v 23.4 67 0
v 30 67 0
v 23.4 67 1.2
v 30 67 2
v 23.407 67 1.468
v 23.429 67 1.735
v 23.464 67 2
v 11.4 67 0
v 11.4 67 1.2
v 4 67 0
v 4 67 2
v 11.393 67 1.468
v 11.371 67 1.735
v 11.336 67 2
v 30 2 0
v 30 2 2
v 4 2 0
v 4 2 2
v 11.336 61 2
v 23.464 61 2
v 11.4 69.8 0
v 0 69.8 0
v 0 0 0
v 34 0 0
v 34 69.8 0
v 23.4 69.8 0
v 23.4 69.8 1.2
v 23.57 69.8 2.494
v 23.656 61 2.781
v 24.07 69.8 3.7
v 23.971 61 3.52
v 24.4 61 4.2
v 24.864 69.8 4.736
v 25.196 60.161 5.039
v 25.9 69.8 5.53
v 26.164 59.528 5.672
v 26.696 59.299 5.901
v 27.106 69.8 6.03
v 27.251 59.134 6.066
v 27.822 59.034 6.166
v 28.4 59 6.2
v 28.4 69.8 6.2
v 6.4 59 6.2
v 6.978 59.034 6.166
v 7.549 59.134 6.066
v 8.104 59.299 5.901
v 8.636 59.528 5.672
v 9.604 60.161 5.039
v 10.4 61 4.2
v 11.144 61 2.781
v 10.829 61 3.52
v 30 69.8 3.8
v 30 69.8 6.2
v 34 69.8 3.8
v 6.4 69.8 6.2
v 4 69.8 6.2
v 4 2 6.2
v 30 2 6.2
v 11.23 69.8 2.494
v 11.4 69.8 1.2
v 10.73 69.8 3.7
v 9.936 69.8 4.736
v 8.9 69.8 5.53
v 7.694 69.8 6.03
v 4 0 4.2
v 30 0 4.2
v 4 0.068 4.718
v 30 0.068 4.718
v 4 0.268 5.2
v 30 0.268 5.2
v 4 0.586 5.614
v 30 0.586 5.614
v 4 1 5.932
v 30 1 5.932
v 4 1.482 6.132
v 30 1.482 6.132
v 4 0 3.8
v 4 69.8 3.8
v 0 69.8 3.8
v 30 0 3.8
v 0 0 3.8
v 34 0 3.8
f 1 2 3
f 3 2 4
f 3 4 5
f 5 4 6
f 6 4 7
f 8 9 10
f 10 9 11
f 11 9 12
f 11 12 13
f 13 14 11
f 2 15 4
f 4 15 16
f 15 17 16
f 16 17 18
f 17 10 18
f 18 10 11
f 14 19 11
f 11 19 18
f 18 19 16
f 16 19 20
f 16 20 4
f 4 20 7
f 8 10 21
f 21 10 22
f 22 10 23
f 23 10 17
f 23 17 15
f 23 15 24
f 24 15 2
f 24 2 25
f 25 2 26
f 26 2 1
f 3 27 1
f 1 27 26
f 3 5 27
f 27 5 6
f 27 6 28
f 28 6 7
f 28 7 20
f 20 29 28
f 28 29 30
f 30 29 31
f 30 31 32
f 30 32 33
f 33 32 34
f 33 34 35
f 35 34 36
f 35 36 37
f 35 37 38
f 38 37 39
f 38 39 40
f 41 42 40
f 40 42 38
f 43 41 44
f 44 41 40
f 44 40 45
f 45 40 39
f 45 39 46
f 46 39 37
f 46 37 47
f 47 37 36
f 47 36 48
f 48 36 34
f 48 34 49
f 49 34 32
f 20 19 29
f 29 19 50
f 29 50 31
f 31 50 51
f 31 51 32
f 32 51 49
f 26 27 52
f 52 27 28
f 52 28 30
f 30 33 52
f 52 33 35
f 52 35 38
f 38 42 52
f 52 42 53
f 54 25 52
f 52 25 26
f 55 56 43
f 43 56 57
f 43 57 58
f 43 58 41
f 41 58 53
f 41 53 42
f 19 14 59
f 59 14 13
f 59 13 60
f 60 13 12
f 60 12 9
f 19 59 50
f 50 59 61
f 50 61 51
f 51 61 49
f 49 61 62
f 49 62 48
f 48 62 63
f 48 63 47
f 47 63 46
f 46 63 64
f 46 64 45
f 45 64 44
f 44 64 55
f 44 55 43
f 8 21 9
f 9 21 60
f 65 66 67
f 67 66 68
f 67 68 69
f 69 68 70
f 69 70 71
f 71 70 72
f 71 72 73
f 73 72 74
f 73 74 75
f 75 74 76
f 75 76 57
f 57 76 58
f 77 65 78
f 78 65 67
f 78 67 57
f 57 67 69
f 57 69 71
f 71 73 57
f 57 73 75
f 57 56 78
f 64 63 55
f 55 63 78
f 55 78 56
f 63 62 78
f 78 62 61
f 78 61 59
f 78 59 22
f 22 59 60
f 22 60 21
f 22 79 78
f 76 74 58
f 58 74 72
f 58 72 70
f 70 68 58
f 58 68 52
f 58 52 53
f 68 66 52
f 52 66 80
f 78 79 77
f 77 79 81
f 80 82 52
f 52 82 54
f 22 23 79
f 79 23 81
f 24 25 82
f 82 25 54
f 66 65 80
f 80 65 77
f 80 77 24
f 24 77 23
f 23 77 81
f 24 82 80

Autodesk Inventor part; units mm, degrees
ref_plane "YZ Plane" through (0, 0, 0) normal (1, 0, 0) x (0, 1, 0)
ref_plane "XZ Plane" through (0, 0, 0) normal (0, 1, 0) x (-1, 0, 0)
ref_plane "XY Plane" through (0, 0, 0) normal (0, 0, 1) x (1, 0, 0)
sketch "Sketch1" plane through (0, 0, 0) normal (0, 0, 1) x (1, 0, 0)
  line L0 (0, 0) -> (34, 0)
  line L1 (34, 0) -> (34, 69.8)
  line L2 (34, 69.8) -> (0, 69.8)
  line L3 (0, 69.8) -> (0, 0)
  line L4 (34, 69.8) -> (0, 69.8)
  line L5 (0, 69.8) -> (0, 0)
  line L6 (0, 0) -> (34, 0)
  line L7 (34, 0) -> (34, 69.8)
  dimension "d4" = 34
  dimension "d5" = 69.8
extrude "Extrusion1" add sketch "Sketch1" along normal blind 3.8
sketch "Sketch3" plane through (0, 0, 3.8) normal (0, 0, 1) x (1, 0, 0)
  line L0 (34, 69.8) -> (0, 69.8) projected
  line L1 (0, 0) -> (34, 0) projected
  line L2 (30, 69.8) -> (4, 69.8)
  line L3 (4, 69.8) -> (4, 0)
  line L4 (4, 0) -> (30, 0)
  line L5 (30, 0) -> (30, 69.8)
  line L6 (0, 69.8) -> (0, 0) projected
  line L7 (34, 0) -> (34, 69.8) projected
  dimension "d6" = 26
  dimension "d7" = 4
  dimension "d8" = 4
extrude "Extrusion3" add sketch "Sketch3" along normal blind 2.4 contours L5 L1 L3 L0
sketch "Sketch4" plane through (0, 0, 6.2) normal (0, 0, 1) x (1, 0, 0)
  point P0 (0, 0)
sketch "Sketch5" plane through (0, 0, 6.2) normal (0, 0, 1) x (1, 0, 0)
  line L0 (30, 69.8) -> (4, 69.8) projected
  line L1 (23.4, 69.8) -> (11.4, 69.8)
  line L2 (11.4, 69.8) -> (11.4, 61)
  line L3 (11.4, 61) -> (23.4, 61)
  line L4 (23.4, 61) -> (23.4, 69.8)
  point P0 (0, 0)
  dimension "d11" = 12
extrude "Extrusion4" cut sketch "Sketch5" against normal blind 8
fillet "Fillet1" radius 2 1 edges at (17, 0, 6.2)
fillet "Fillet2" radius 5 2 edges at (11.4, 65.4, 6.2) (23.4, 65.4, 6.2)
chamfer "Chamfer1" distance 2 angle 45 1 edges at (17.4, 61, 6.2)
sketch "Sketch6" plane through (0, 0, 0) normal (0, 0, -1) x (-1, 0, 0)
  line L0 (-30, 2) -> (-4, 2) projected
  line L1 (-30, 2) -> (-30, 69.8) projected
  line L2 (-4, 2) -> (-30, 2)
  line L3 (-30, 2) -> (-30, 67)
  line L4 (-30, 67) -> (-4, 67)
  line L5 (-4, 67) -> (-4, 2)
  point P0 (0, 0)
extrude "Extrusion5" cut sketch "Sketch6" against normal blind 2
properties part number "battery_cover"
